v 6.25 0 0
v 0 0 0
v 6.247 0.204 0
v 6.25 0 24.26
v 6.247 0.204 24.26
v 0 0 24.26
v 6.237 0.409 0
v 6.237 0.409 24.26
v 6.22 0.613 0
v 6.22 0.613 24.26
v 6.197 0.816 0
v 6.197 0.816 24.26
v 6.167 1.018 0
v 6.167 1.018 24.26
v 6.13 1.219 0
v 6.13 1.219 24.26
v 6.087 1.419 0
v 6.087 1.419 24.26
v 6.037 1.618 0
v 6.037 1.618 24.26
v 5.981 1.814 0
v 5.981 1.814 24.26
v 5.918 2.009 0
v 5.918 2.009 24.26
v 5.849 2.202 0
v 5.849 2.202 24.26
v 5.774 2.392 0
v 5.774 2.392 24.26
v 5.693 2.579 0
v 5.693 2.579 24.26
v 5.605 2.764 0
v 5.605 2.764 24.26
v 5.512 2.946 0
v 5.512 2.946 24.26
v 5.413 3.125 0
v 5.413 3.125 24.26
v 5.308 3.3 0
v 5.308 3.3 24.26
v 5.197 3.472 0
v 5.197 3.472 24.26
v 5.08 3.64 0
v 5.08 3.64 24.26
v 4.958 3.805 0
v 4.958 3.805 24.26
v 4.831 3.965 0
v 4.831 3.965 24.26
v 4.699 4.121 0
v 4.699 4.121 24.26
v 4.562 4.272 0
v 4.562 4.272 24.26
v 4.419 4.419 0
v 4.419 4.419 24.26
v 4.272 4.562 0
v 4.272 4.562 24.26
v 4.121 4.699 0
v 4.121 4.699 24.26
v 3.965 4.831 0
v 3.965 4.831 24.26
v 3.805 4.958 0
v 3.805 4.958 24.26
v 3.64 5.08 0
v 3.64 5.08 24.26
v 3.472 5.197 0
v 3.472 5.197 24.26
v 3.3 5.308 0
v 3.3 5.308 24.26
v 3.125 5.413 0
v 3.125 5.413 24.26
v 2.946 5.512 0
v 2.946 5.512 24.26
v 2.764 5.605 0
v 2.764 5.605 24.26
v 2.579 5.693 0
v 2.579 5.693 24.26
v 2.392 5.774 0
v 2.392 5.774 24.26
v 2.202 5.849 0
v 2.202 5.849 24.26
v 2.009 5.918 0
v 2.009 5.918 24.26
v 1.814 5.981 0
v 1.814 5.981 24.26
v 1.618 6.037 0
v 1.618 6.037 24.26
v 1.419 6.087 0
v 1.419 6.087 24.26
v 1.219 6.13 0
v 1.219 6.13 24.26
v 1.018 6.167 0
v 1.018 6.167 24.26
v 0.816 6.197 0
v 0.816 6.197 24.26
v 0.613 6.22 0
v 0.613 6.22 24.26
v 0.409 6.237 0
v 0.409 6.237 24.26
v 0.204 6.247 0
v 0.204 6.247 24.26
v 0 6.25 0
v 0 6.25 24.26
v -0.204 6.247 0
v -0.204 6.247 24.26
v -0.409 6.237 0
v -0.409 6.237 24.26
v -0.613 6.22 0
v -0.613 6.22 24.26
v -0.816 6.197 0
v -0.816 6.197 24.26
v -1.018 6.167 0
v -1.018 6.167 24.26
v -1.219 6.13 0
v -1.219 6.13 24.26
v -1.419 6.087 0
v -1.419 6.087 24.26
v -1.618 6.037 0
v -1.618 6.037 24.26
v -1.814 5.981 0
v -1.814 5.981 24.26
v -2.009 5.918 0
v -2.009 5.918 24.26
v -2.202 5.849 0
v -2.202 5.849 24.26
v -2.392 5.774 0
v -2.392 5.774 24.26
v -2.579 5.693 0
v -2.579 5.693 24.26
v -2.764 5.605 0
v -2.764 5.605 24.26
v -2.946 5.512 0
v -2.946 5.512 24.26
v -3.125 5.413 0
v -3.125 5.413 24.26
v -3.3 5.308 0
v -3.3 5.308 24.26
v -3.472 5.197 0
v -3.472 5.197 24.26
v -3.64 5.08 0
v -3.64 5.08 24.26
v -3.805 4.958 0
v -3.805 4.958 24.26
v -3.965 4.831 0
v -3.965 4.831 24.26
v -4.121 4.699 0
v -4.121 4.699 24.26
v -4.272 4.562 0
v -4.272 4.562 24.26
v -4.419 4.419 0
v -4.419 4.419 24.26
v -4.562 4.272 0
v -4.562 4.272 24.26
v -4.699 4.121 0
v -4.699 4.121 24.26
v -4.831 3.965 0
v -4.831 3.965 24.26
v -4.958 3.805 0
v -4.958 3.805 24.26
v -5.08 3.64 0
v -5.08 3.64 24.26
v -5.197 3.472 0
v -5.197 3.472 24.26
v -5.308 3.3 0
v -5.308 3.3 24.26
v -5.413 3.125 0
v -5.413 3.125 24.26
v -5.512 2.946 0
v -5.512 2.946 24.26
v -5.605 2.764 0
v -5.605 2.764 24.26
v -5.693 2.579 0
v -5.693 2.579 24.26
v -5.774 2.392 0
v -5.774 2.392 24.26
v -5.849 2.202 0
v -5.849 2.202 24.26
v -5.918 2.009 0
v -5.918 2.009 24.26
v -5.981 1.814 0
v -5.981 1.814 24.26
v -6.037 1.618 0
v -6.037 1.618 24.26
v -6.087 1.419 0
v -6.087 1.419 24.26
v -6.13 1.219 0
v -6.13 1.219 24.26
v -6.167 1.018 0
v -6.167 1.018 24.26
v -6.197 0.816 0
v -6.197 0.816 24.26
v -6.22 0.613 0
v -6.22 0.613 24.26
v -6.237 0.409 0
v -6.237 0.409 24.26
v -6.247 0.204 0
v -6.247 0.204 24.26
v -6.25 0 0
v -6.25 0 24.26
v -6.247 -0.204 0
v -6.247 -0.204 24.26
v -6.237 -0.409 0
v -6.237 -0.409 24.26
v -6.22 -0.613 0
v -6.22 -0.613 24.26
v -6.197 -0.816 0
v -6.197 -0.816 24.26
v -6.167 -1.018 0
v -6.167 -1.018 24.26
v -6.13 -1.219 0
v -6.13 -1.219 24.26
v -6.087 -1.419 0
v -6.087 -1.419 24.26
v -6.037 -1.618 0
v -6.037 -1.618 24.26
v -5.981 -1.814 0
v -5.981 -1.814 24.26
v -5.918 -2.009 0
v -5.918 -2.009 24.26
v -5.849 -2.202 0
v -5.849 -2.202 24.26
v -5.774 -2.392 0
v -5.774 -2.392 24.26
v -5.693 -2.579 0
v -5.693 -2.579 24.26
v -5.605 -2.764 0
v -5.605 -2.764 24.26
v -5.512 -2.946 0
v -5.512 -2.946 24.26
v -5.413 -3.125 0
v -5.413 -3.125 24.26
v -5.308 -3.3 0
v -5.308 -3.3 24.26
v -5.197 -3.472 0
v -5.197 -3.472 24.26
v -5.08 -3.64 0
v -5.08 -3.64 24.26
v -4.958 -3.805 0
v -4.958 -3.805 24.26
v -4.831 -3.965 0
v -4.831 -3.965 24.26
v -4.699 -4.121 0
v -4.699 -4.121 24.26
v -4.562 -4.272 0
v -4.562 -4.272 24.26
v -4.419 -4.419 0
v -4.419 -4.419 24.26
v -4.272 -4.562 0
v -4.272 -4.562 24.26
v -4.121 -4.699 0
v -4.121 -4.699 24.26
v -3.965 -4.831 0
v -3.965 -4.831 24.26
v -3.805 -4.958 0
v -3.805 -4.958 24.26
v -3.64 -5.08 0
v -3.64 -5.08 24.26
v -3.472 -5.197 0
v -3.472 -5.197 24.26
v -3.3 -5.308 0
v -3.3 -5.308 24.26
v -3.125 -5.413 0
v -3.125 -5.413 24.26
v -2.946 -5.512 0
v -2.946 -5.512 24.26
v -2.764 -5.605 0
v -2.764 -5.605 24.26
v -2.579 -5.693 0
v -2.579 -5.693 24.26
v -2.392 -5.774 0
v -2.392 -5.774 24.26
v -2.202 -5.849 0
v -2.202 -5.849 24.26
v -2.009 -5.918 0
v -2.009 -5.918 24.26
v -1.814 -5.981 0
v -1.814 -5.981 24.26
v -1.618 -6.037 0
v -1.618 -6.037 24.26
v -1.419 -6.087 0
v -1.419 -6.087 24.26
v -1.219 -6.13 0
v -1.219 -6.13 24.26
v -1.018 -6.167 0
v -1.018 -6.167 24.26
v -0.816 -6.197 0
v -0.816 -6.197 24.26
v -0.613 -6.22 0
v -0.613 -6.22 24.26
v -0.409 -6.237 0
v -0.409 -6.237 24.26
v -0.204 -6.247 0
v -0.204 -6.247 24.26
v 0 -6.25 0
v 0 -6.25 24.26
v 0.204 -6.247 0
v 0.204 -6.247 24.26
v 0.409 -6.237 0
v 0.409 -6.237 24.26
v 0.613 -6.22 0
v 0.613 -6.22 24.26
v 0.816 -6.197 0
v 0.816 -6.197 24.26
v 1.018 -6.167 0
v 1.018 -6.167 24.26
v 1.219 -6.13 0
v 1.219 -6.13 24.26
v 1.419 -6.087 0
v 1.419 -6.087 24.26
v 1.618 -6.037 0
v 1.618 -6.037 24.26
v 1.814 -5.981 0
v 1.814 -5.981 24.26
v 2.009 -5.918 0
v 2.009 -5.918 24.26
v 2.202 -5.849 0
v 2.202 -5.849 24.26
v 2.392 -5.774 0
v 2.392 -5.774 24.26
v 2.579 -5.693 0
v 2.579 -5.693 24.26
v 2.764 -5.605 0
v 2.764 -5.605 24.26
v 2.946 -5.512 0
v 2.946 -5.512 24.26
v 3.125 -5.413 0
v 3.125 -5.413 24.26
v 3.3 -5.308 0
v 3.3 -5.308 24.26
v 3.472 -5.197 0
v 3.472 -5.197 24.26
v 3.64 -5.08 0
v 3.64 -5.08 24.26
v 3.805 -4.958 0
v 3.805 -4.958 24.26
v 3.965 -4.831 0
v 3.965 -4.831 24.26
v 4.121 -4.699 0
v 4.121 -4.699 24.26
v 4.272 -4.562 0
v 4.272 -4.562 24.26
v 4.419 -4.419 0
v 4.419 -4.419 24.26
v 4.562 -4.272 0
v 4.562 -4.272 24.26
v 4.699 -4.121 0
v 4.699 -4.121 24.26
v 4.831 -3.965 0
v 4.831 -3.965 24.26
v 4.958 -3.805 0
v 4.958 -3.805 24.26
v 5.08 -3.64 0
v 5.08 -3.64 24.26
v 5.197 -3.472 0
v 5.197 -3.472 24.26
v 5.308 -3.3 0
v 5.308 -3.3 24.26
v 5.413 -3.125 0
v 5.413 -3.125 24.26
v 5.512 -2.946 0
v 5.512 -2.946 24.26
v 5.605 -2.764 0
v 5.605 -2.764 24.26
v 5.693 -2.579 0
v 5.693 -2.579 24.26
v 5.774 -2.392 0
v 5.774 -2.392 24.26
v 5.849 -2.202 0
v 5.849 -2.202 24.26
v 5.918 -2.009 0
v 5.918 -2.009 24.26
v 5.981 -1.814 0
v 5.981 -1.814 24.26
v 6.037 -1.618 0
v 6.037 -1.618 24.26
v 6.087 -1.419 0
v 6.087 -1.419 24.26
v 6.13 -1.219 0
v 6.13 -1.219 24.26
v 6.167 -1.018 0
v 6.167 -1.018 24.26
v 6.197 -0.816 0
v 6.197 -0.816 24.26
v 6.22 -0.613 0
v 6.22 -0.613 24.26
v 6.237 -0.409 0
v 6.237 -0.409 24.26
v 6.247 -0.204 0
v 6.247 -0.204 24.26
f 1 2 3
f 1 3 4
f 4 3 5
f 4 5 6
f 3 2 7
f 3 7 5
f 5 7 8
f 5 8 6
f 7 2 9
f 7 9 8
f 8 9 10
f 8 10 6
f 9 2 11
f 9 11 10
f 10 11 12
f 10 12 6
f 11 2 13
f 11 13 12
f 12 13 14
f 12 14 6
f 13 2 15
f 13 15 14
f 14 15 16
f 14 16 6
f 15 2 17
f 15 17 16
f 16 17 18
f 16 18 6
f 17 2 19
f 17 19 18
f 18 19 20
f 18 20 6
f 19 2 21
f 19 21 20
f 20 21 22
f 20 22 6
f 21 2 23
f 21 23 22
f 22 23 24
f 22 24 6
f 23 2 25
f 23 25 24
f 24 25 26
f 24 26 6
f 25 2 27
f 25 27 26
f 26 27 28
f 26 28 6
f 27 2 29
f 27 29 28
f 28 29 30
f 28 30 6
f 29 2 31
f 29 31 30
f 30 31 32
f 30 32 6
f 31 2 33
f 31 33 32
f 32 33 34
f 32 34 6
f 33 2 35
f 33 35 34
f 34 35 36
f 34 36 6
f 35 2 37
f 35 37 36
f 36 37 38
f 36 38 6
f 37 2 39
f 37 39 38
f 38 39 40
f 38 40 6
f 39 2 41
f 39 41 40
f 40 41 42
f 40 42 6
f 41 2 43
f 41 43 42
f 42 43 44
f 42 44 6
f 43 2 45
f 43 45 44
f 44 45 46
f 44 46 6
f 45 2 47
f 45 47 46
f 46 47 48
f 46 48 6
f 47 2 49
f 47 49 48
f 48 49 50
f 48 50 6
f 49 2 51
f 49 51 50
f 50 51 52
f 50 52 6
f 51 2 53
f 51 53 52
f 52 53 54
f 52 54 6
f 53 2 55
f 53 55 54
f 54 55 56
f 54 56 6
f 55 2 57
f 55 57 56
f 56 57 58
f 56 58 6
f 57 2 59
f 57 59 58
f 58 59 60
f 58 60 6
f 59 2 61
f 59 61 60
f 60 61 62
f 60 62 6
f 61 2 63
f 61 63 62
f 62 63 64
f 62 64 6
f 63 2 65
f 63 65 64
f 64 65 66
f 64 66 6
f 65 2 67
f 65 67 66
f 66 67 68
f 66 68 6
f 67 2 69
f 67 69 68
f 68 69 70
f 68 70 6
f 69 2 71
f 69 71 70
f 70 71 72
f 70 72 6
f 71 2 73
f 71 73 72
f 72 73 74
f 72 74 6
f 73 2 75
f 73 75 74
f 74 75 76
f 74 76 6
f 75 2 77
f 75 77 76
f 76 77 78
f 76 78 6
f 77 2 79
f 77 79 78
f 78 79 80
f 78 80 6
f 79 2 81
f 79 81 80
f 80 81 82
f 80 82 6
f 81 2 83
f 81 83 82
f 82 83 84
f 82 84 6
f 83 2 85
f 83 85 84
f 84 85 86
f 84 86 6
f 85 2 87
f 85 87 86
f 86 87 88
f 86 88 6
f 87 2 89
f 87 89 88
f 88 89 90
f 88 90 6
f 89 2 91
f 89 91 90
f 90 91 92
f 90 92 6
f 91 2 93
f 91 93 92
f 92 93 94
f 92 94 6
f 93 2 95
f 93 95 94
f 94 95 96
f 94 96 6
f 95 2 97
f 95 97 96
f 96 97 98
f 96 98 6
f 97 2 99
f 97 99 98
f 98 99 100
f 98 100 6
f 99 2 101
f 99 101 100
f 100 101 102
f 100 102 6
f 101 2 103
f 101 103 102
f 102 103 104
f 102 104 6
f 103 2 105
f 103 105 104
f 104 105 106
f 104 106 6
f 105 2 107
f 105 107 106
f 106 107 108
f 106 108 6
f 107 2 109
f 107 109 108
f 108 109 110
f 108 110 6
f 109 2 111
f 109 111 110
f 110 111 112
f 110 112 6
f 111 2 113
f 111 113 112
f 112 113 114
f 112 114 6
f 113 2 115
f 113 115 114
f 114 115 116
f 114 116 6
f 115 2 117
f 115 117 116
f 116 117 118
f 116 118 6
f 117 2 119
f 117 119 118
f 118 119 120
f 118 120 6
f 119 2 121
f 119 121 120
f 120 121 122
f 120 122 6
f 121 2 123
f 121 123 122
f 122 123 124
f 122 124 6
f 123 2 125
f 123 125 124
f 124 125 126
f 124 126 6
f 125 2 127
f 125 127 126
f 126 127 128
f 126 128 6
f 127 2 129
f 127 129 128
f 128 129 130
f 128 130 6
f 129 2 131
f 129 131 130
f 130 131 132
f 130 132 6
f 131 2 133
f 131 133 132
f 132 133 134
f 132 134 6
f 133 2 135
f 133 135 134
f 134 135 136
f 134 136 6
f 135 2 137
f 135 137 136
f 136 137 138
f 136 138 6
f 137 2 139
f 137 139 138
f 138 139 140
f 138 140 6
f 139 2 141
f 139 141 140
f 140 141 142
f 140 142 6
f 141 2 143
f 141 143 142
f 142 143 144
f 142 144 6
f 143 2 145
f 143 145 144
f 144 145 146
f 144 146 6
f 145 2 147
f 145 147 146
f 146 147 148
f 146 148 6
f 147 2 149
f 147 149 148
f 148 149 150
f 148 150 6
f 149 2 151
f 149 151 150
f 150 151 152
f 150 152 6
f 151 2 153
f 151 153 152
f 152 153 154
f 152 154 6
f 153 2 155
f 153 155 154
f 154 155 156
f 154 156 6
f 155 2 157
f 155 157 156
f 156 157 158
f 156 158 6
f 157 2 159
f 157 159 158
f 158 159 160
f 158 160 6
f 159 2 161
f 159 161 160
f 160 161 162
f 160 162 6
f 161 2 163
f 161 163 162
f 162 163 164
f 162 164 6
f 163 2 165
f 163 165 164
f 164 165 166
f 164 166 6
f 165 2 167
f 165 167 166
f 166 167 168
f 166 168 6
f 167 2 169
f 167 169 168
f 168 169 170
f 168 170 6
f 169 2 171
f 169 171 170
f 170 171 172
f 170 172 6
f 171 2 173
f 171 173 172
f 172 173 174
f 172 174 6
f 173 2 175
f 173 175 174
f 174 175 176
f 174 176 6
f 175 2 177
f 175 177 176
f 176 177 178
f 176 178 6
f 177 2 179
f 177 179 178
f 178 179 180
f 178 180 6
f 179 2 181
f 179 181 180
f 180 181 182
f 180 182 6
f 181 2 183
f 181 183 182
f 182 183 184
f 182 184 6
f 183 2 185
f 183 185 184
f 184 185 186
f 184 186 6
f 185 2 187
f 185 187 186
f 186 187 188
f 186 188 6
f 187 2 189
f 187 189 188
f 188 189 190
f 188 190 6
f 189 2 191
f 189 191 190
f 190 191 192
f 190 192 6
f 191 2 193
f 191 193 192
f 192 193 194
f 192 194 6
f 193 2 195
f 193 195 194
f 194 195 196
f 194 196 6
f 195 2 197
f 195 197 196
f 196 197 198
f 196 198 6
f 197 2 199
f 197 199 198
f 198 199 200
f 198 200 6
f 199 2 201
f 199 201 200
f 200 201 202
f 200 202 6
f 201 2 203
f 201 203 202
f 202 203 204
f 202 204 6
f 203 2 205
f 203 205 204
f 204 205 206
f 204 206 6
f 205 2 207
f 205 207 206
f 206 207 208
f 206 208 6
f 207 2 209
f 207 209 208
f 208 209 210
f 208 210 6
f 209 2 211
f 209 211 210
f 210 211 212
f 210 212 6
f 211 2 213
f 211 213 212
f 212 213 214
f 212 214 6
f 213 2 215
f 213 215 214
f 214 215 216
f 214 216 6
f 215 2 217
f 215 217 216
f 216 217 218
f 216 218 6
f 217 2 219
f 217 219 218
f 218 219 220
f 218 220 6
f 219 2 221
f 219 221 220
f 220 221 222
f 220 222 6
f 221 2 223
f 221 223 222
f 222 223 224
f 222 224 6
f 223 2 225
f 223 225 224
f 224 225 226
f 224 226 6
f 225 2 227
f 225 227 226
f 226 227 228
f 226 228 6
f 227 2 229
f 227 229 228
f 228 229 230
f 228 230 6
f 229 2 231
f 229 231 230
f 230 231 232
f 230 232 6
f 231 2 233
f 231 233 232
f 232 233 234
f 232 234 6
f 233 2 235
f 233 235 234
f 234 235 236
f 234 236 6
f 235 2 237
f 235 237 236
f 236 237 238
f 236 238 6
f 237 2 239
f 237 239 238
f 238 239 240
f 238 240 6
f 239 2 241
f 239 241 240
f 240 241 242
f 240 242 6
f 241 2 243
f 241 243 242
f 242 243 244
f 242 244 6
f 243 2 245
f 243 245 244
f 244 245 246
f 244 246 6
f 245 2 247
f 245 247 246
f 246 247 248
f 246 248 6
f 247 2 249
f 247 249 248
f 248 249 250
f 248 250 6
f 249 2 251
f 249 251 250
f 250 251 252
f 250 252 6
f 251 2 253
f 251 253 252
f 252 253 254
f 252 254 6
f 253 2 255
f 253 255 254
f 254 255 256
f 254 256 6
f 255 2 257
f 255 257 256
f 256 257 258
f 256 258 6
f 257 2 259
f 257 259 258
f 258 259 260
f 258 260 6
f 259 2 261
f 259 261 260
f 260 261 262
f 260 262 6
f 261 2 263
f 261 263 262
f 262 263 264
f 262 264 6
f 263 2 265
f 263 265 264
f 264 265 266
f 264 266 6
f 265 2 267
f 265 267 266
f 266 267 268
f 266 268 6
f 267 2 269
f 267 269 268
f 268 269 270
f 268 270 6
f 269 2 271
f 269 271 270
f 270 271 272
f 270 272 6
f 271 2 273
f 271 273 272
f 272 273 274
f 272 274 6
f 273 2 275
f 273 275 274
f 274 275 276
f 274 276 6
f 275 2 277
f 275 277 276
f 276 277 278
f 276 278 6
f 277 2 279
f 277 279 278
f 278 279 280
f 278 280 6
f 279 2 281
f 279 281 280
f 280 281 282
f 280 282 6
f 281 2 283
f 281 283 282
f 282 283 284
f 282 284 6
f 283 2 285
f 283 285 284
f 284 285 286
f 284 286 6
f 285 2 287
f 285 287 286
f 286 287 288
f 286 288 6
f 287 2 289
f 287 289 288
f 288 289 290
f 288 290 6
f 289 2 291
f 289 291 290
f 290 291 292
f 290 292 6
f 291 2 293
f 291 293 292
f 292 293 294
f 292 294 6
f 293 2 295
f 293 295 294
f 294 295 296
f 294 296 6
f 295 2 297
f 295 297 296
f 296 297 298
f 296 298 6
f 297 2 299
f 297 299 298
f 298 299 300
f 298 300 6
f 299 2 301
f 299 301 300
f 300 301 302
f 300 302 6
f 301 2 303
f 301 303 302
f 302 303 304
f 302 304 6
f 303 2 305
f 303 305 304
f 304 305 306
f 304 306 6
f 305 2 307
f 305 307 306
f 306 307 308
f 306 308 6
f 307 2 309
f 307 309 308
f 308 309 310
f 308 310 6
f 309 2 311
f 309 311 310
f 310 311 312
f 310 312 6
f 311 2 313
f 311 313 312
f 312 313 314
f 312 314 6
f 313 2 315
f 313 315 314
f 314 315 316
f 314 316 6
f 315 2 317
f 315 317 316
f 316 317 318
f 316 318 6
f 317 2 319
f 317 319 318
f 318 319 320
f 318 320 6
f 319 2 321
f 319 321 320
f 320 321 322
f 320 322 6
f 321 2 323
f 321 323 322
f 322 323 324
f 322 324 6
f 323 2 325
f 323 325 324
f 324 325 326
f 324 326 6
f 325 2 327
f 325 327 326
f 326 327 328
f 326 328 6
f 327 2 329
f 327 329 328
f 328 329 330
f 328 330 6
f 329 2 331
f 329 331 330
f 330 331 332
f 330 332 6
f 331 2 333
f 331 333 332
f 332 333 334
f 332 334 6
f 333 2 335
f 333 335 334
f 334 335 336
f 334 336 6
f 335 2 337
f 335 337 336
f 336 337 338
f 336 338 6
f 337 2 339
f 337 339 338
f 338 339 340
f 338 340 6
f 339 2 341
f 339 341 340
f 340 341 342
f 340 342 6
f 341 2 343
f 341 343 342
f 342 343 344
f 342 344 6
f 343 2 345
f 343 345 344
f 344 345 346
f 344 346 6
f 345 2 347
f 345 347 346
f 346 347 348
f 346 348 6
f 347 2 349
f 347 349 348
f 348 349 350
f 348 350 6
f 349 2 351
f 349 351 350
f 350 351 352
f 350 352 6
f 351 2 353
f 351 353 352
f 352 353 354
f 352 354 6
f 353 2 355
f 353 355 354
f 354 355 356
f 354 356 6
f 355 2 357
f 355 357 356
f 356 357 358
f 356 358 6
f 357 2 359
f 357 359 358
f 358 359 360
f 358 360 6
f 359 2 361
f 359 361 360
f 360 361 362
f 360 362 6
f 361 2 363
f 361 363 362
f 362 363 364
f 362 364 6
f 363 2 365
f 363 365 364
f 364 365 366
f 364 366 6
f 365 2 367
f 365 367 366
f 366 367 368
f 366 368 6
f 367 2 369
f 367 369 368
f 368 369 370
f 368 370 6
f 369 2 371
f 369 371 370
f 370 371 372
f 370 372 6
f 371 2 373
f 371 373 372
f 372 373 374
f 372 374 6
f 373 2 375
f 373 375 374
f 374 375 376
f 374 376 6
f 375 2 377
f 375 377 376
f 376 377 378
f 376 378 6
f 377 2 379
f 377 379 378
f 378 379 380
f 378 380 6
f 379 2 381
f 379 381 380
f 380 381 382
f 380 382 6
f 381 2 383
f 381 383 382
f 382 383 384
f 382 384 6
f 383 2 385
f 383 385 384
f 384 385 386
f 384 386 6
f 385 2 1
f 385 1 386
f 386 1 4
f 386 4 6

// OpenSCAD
// Scan-fitted dimensions, mm. Ideal cylinder; scan edge flare is omitted.
$fn=192;
cylinder(d=12.5,h=24.26);
